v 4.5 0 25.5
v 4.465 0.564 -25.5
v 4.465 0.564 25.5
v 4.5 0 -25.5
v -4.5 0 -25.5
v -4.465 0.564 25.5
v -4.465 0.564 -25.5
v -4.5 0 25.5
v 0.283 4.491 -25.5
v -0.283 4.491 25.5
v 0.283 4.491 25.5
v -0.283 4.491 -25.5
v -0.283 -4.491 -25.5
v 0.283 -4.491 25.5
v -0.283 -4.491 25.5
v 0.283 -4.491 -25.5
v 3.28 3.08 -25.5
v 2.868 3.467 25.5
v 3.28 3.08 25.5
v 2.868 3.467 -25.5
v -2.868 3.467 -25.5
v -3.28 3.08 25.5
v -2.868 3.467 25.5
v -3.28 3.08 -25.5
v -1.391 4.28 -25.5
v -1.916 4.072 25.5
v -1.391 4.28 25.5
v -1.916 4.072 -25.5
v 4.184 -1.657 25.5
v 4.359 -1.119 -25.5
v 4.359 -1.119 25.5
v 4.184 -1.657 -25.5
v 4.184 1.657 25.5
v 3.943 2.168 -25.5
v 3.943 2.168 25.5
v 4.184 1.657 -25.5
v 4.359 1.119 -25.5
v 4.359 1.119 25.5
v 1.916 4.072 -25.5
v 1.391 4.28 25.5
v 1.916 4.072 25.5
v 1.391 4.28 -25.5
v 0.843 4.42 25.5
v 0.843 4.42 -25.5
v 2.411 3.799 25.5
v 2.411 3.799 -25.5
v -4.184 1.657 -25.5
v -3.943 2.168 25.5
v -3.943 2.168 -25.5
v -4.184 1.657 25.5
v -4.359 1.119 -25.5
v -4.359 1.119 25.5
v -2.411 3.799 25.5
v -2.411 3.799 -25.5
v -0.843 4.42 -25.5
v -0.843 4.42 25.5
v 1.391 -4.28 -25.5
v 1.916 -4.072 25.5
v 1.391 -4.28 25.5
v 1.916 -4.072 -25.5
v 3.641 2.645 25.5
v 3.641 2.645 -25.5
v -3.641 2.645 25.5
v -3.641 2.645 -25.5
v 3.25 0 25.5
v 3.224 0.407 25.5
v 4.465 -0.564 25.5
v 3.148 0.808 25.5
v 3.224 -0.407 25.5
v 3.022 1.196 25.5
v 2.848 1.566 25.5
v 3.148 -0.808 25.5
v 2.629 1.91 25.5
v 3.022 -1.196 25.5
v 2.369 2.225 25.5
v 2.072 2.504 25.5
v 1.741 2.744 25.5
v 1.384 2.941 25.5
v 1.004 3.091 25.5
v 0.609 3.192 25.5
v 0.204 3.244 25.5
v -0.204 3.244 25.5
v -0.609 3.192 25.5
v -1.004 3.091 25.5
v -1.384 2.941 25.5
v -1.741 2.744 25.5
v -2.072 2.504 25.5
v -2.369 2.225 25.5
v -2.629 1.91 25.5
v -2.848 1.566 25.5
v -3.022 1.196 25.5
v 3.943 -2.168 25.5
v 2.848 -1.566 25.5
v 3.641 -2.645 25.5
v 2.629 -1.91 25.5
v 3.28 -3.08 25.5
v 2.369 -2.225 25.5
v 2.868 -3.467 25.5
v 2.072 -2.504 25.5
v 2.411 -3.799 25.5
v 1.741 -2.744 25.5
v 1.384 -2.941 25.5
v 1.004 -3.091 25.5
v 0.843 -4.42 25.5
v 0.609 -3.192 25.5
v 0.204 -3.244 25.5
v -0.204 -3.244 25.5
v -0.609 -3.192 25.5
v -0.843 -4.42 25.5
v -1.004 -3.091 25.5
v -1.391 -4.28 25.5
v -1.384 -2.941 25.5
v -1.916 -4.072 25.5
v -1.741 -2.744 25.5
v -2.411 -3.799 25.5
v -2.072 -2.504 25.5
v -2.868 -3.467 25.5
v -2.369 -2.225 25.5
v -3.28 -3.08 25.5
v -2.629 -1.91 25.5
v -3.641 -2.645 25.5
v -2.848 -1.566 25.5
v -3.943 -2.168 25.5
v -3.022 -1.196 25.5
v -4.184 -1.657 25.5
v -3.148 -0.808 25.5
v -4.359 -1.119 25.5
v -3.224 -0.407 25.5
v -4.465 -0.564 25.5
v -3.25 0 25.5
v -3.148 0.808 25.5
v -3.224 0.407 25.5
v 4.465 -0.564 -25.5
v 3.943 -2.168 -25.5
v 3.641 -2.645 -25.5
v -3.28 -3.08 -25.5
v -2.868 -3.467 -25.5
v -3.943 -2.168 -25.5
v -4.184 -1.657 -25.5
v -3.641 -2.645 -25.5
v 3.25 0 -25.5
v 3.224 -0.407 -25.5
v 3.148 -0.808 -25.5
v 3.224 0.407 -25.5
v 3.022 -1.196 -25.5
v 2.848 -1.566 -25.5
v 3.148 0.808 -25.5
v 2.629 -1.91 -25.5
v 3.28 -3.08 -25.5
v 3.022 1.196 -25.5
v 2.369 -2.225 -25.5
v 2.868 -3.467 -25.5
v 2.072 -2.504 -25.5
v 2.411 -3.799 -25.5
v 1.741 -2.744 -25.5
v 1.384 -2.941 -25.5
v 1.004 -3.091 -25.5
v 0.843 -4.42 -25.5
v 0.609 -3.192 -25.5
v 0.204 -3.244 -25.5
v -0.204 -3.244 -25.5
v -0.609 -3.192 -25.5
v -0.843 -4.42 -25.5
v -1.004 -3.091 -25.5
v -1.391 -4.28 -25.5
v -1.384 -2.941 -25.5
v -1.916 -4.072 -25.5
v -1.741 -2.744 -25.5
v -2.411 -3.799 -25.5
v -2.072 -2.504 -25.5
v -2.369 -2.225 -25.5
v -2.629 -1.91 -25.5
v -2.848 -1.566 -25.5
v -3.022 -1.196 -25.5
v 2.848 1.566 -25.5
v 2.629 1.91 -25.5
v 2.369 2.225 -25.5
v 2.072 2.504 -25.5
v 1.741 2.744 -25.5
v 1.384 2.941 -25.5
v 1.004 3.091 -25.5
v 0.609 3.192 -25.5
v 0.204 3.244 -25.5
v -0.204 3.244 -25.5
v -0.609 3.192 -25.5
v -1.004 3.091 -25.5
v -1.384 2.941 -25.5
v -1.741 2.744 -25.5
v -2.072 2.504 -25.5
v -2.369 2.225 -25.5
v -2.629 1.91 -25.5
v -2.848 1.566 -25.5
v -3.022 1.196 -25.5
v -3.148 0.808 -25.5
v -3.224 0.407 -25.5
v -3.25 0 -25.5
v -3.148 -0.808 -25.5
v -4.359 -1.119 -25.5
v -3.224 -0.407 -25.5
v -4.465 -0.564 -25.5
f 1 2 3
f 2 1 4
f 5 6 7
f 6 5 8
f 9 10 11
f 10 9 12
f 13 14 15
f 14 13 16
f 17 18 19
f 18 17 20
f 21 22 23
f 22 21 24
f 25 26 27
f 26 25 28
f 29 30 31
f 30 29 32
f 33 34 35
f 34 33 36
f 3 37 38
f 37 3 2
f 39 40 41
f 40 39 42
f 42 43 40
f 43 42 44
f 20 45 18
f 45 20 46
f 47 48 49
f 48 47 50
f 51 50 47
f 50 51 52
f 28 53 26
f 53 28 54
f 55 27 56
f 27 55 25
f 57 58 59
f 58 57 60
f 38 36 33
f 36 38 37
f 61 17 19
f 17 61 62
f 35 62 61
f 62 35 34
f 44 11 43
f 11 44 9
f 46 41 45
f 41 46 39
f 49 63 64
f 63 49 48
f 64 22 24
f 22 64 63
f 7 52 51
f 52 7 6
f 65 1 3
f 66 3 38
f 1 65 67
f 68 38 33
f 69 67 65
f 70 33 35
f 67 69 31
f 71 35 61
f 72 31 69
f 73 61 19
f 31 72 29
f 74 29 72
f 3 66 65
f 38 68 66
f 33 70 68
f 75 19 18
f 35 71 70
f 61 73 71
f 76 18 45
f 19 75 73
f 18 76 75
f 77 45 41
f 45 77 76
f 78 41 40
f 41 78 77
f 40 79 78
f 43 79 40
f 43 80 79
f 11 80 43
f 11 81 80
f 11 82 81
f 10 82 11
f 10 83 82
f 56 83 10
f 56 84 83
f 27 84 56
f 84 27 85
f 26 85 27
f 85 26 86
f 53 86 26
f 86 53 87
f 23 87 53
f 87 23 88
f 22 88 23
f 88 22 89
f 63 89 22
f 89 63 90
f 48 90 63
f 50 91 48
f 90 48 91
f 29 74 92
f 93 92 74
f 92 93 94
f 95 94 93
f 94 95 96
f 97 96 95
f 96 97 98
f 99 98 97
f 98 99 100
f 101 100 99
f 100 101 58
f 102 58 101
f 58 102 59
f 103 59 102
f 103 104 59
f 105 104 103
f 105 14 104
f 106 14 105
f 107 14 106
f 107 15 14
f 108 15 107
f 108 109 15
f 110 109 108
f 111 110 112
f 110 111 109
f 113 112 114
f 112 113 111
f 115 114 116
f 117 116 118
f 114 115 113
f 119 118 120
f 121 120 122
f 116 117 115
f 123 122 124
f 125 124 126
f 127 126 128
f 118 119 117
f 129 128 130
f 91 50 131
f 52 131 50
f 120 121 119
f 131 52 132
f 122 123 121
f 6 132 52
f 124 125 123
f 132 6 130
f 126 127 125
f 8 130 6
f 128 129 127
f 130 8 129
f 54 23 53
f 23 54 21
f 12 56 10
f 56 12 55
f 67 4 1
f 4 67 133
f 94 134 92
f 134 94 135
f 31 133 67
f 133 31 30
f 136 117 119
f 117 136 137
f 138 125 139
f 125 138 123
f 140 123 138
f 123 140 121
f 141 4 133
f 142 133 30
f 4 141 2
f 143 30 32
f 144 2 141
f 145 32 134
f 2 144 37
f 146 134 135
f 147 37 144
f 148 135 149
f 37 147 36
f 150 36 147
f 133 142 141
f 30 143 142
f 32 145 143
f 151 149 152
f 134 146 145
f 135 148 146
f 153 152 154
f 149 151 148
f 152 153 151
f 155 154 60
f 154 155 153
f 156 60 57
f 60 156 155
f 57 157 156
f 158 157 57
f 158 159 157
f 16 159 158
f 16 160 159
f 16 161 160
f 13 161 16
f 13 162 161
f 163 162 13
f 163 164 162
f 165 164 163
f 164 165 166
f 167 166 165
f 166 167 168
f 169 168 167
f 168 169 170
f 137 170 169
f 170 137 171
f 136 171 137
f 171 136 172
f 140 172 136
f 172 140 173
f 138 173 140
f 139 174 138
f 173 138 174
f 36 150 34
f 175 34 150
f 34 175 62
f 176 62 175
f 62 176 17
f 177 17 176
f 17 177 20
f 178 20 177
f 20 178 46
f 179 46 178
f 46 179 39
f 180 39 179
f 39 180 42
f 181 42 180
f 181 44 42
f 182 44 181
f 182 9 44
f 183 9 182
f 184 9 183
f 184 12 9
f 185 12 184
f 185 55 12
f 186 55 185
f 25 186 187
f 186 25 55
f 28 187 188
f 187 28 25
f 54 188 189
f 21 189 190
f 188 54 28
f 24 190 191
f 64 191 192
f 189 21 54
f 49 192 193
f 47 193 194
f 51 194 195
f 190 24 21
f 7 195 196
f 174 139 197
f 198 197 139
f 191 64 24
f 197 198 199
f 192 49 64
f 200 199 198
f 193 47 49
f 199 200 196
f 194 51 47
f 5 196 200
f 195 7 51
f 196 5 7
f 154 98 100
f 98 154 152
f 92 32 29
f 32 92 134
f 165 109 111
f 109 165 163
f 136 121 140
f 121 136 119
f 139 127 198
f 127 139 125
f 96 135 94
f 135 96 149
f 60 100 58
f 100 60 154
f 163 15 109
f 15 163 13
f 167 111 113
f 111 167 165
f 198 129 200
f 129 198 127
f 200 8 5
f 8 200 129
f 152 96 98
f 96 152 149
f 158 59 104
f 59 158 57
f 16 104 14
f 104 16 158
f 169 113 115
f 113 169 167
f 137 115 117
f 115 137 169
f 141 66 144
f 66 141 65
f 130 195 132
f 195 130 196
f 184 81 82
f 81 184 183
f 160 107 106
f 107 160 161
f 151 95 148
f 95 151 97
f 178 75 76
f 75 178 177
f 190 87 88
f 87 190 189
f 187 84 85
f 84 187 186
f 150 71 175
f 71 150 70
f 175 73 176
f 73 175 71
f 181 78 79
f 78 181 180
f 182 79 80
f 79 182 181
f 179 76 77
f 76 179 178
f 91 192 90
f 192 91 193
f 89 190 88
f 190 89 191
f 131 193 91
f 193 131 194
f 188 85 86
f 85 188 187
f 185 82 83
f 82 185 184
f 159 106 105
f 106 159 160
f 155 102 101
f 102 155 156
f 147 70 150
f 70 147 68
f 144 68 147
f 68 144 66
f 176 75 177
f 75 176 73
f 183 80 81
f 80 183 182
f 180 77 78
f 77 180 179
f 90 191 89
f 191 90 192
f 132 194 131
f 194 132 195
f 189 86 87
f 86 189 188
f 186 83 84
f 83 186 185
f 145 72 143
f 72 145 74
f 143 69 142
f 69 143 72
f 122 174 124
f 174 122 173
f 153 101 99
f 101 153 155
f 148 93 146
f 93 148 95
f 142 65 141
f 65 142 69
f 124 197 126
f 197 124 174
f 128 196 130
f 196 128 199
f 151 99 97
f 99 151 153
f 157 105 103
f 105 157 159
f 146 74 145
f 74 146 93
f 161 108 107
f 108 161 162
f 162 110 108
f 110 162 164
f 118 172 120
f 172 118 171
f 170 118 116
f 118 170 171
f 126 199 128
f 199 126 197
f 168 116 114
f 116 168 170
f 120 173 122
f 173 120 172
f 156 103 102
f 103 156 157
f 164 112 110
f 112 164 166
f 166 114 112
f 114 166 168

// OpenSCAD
$fn = 50;


difference() {
	union() {
		translate(v = [0, 0, -25.5000000000]) {
			cylinder(h = 51, r = 4.5000000000);
		}
	}
	union() {
		translate(v = [0, 0, -100.0000000000]) {
			cylinder(h = 200, r = 3.2500000000);
		}
	}
}
